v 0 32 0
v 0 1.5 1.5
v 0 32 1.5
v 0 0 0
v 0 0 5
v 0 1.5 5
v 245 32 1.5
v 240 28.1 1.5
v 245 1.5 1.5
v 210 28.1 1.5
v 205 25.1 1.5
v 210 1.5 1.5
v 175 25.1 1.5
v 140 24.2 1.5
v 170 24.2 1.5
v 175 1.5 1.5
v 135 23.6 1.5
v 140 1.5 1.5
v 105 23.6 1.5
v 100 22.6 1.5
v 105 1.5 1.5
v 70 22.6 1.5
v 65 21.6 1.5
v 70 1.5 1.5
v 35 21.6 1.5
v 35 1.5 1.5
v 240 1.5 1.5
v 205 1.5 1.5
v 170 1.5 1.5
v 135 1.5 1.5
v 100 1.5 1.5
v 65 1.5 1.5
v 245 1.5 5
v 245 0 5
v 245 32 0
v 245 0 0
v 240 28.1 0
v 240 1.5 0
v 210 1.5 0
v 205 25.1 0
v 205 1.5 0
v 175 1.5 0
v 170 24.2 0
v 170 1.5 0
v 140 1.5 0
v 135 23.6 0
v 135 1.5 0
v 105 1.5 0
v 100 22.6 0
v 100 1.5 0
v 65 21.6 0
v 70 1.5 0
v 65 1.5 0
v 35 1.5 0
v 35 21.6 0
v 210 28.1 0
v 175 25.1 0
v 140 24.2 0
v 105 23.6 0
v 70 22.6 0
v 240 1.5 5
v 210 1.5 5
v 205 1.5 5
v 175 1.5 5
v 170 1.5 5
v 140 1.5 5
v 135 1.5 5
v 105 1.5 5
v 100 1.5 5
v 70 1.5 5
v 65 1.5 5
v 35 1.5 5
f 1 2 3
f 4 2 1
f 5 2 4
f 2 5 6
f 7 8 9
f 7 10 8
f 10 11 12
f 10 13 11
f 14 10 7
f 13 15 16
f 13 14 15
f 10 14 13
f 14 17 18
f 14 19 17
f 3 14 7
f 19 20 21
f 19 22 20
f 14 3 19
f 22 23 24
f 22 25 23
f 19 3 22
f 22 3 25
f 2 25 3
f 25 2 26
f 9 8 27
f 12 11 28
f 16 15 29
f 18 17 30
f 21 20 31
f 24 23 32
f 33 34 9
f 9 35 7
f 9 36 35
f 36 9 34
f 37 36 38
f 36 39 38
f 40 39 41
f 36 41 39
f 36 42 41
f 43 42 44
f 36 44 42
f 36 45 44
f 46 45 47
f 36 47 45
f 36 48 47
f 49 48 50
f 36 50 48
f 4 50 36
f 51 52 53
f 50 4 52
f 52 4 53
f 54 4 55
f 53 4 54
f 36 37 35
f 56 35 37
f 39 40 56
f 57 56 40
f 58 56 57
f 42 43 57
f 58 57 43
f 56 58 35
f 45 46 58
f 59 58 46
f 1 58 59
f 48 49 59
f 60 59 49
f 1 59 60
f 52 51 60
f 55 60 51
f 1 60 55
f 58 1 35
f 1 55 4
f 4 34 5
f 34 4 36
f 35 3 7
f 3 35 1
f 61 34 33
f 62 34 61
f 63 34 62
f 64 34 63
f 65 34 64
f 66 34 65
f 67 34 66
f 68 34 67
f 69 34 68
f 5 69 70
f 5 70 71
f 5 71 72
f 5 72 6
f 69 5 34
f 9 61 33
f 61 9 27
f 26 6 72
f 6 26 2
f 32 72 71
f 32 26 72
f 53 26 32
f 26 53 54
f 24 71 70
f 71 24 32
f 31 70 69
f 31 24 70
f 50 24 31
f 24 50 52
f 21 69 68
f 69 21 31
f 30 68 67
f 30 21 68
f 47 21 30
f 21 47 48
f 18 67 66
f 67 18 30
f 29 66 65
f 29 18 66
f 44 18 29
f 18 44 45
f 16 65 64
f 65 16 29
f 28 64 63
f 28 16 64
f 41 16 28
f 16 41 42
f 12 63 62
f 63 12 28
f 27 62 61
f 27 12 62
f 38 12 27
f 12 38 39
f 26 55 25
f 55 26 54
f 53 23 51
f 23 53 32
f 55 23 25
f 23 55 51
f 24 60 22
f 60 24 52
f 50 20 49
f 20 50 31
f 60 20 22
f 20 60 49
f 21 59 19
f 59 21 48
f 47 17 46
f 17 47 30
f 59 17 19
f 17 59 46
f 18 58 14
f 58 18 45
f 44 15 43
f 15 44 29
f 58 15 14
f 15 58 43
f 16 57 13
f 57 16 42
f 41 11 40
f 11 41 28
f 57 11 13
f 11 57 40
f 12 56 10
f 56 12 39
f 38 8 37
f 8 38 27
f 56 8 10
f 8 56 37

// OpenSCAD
// value, diameter, tickness
coins = [
  [1,    20.0, 1.2],
  [50,   21.0, 1.7],
  [5,    22.0, 1.5],
  [100,  22.6, 1.7],
  [10,   23.5, 1.5],
  [500,  26.5, 2.0],
];

unit_witdh = 35;
hole_width = 30;
plate_height = 32;
full_length = (len(coins) + 1) * unit_witdh;
tickness = 1.5;
hole_margin = 0.1;

module plate() {
  union() {
    cube([full_length, plate_height, tickness]);
    cube([full_length, tickness, 5]);
  }
}

module holes() {
  union() {
    for(i = [0:len(coins)-1]) {
      coin = coins[i];
      translate([(i + 1) * unit_witdh, tickness, -0.5]) {
        cube([hole_width, coin[1] + hole_margin, tickness + 5]);
      }
    }
  }
}

difference() {
  plate();
  holes();
}
